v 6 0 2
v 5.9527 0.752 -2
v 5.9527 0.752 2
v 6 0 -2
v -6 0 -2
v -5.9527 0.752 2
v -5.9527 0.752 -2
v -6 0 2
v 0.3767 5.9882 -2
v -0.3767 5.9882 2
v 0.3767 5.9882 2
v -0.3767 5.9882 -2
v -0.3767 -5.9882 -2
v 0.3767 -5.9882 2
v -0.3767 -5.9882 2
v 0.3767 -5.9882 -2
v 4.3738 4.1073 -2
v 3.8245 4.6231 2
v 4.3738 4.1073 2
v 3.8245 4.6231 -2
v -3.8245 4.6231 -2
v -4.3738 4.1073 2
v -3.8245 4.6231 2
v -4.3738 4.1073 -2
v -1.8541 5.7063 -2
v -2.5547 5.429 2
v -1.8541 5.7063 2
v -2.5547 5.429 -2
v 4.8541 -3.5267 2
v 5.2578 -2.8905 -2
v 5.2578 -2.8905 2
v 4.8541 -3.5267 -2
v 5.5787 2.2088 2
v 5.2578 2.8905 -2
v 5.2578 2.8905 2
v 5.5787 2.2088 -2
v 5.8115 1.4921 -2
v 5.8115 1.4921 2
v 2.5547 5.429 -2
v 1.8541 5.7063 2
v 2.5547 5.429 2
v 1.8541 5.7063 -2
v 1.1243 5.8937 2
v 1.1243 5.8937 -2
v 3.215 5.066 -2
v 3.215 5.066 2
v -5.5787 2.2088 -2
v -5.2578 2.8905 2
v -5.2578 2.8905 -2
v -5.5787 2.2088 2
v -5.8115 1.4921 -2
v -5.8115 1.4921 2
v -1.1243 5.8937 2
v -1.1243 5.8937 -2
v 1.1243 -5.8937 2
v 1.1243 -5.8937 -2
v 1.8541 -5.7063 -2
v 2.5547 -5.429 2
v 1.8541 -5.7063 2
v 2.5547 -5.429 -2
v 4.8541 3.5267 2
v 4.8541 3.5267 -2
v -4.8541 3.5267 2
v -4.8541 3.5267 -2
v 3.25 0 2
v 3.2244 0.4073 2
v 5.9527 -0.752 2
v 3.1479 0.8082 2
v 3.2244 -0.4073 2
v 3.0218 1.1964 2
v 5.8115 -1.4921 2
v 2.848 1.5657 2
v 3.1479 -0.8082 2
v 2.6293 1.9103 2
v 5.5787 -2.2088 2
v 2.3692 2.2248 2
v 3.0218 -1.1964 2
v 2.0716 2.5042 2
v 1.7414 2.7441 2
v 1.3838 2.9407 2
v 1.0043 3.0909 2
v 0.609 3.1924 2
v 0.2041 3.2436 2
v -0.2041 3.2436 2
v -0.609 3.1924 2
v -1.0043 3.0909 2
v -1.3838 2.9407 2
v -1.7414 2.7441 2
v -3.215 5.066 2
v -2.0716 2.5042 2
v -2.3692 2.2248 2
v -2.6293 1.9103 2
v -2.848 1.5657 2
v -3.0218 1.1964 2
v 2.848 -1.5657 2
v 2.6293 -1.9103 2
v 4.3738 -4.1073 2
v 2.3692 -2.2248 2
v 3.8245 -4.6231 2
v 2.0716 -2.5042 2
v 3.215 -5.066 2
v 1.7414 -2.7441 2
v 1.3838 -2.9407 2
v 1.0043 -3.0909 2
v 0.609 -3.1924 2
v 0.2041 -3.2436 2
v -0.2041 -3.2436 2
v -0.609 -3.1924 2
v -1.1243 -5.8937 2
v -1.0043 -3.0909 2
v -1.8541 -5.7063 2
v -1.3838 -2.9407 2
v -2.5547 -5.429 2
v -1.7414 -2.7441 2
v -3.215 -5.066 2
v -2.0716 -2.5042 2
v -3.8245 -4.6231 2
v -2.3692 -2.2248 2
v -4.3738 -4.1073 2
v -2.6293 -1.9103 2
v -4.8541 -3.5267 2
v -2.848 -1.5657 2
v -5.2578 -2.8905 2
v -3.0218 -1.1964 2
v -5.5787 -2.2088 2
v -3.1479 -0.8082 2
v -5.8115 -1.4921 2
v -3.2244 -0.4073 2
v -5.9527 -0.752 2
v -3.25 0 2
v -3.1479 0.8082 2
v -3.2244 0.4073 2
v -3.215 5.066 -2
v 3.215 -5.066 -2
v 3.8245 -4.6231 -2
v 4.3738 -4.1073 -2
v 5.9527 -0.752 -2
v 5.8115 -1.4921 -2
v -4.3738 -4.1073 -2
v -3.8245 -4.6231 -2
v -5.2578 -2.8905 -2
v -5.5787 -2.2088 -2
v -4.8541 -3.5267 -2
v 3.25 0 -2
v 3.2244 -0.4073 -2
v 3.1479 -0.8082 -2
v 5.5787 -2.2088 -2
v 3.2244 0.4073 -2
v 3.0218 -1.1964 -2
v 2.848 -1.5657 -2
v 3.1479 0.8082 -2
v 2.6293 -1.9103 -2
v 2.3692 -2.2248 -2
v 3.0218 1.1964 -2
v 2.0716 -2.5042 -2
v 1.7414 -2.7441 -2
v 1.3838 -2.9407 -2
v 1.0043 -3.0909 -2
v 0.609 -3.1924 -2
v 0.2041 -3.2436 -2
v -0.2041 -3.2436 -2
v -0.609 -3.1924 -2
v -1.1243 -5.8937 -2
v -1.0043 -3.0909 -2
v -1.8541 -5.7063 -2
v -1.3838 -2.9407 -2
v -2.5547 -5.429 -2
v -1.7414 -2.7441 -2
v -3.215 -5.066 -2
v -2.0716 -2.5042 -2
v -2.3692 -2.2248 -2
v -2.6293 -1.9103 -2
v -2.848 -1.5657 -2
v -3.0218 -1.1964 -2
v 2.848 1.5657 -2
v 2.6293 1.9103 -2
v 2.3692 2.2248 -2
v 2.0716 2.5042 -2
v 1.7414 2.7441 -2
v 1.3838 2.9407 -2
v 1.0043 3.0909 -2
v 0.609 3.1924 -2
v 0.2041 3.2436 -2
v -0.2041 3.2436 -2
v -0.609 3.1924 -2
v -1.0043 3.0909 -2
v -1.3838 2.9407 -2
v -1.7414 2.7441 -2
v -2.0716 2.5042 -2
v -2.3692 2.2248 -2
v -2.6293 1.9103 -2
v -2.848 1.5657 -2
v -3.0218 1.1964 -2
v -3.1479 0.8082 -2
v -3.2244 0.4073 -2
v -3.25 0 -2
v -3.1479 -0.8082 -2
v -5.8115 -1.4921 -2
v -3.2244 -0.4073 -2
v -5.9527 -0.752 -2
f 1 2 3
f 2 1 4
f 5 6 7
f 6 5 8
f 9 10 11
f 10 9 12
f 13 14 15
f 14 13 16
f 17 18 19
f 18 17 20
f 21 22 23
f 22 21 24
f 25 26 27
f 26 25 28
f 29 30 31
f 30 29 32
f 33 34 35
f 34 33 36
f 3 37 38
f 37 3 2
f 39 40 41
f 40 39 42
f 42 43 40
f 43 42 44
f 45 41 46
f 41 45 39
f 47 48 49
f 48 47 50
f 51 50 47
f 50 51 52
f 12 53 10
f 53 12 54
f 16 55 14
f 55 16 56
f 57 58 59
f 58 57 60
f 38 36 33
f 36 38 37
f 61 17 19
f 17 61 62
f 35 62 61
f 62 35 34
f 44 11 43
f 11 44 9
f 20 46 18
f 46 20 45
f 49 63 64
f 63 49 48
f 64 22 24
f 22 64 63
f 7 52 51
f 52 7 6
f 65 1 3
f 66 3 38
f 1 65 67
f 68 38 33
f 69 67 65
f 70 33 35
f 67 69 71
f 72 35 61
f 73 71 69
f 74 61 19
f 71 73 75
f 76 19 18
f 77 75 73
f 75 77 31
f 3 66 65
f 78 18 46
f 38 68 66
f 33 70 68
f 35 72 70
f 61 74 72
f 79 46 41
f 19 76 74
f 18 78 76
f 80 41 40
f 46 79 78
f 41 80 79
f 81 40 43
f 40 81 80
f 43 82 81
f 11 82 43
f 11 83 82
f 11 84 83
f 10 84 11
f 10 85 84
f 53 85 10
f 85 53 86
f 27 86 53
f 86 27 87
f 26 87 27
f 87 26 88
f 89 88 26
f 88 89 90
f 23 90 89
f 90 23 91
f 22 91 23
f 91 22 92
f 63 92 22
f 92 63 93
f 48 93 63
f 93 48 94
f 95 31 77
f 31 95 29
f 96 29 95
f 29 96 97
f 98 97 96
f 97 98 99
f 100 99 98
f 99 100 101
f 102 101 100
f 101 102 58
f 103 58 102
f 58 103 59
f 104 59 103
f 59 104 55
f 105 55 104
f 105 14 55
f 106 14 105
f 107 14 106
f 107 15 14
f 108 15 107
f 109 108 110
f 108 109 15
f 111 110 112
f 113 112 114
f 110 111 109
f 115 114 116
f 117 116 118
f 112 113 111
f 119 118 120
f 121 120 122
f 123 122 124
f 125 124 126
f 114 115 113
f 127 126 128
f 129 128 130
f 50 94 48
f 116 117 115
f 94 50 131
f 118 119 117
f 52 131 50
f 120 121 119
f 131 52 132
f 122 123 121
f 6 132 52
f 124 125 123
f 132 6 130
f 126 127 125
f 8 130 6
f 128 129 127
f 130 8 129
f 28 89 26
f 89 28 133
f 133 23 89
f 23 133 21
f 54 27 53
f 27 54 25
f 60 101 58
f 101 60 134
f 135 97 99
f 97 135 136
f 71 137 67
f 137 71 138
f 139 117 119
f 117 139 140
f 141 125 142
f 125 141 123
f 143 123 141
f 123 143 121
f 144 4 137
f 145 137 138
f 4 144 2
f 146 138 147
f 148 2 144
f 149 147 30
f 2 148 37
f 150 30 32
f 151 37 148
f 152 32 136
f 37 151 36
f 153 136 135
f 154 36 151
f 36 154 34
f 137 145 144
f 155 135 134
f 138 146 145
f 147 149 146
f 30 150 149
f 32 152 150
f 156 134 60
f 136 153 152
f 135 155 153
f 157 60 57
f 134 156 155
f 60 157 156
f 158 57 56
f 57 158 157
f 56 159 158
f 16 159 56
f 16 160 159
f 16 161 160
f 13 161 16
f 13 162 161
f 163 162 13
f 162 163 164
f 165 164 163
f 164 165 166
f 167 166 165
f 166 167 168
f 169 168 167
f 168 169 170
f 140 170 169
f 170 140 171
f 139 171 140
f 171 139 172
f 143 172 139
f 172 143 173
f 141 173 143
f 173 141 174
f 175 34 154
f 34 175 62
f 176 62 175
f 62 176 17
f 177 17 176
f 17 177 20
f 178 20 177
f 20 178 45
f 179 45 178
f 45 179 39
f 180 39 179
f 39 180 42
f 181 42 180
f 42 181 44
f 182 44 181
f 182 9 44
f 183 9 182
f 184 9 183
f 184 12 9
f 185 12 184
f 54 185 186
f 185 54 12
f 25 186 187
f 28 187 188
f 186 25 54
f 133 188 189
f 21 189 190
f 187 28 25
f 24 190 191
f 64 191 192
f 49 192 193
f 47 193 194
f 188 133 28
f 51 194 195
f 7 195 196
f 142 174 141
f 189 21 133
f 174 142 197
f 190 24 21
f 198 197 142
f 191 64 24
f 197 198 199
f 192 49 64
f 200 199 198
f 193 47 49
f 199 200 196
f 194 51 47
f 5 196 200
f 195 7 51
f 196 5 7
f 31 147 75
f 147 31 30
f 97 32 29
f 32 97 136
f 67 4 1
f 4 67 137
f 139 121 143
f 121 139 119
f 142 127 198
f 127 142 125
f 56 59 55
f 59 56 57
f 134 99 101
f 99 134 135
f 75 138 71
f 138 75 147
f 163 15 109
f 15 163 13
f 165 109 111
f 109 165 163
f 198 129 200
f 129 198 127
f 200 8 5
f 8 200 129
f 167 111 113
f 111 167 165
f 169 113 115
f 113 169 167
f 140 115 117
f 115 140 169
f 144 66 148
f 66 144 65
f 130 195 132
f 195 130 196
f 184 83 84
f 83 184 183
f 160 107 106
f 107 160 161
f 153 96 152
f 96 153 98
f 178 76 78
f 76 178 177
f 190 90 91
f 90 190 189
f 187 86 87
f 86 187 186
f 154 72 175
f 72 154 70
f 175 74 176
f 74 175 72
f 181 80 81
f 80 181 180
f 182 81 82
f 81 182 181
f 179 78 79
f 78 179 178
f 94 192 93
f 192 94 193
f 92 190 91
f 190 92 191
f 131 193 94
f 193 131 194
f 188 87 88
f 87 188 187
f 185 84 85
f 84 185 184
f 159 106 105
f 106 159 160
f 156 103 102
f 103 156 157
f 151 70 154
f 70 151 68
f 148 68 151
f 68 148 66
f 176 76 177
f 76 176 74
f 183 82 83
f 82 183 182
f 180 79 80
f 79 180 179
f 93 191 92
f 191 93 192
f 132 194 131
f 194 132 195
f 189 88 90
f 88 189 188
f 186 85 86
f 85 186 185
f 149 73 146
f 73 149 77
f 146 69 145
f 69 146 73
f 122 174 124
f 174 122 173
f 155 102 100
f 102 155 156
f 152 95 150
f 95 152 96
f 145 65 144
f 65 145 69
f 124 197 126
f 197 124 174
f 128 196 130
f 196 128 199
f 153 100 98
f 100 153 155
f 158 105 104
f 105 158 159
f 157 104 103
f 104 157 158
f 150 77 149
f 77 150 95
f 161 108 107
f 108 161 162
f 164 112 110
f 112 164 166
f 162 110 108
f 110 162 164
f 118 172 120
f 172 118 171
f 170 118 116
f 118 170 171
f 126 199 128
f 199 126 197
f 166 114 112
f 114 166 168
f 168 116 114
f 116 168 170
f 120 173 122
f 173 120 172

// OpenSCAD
$fn = 50;


difference() {
	union() {
		translate(v = [0, 0, -2.0000000000]) {
			cylinder(h = 4, r = 6.0000000000);
		}
	}
	union() {
		translate(v = [0, 0, -100.0000000000]) {
			cylinder(h = 200, r = 3.2500000000);
		}
	}
}
